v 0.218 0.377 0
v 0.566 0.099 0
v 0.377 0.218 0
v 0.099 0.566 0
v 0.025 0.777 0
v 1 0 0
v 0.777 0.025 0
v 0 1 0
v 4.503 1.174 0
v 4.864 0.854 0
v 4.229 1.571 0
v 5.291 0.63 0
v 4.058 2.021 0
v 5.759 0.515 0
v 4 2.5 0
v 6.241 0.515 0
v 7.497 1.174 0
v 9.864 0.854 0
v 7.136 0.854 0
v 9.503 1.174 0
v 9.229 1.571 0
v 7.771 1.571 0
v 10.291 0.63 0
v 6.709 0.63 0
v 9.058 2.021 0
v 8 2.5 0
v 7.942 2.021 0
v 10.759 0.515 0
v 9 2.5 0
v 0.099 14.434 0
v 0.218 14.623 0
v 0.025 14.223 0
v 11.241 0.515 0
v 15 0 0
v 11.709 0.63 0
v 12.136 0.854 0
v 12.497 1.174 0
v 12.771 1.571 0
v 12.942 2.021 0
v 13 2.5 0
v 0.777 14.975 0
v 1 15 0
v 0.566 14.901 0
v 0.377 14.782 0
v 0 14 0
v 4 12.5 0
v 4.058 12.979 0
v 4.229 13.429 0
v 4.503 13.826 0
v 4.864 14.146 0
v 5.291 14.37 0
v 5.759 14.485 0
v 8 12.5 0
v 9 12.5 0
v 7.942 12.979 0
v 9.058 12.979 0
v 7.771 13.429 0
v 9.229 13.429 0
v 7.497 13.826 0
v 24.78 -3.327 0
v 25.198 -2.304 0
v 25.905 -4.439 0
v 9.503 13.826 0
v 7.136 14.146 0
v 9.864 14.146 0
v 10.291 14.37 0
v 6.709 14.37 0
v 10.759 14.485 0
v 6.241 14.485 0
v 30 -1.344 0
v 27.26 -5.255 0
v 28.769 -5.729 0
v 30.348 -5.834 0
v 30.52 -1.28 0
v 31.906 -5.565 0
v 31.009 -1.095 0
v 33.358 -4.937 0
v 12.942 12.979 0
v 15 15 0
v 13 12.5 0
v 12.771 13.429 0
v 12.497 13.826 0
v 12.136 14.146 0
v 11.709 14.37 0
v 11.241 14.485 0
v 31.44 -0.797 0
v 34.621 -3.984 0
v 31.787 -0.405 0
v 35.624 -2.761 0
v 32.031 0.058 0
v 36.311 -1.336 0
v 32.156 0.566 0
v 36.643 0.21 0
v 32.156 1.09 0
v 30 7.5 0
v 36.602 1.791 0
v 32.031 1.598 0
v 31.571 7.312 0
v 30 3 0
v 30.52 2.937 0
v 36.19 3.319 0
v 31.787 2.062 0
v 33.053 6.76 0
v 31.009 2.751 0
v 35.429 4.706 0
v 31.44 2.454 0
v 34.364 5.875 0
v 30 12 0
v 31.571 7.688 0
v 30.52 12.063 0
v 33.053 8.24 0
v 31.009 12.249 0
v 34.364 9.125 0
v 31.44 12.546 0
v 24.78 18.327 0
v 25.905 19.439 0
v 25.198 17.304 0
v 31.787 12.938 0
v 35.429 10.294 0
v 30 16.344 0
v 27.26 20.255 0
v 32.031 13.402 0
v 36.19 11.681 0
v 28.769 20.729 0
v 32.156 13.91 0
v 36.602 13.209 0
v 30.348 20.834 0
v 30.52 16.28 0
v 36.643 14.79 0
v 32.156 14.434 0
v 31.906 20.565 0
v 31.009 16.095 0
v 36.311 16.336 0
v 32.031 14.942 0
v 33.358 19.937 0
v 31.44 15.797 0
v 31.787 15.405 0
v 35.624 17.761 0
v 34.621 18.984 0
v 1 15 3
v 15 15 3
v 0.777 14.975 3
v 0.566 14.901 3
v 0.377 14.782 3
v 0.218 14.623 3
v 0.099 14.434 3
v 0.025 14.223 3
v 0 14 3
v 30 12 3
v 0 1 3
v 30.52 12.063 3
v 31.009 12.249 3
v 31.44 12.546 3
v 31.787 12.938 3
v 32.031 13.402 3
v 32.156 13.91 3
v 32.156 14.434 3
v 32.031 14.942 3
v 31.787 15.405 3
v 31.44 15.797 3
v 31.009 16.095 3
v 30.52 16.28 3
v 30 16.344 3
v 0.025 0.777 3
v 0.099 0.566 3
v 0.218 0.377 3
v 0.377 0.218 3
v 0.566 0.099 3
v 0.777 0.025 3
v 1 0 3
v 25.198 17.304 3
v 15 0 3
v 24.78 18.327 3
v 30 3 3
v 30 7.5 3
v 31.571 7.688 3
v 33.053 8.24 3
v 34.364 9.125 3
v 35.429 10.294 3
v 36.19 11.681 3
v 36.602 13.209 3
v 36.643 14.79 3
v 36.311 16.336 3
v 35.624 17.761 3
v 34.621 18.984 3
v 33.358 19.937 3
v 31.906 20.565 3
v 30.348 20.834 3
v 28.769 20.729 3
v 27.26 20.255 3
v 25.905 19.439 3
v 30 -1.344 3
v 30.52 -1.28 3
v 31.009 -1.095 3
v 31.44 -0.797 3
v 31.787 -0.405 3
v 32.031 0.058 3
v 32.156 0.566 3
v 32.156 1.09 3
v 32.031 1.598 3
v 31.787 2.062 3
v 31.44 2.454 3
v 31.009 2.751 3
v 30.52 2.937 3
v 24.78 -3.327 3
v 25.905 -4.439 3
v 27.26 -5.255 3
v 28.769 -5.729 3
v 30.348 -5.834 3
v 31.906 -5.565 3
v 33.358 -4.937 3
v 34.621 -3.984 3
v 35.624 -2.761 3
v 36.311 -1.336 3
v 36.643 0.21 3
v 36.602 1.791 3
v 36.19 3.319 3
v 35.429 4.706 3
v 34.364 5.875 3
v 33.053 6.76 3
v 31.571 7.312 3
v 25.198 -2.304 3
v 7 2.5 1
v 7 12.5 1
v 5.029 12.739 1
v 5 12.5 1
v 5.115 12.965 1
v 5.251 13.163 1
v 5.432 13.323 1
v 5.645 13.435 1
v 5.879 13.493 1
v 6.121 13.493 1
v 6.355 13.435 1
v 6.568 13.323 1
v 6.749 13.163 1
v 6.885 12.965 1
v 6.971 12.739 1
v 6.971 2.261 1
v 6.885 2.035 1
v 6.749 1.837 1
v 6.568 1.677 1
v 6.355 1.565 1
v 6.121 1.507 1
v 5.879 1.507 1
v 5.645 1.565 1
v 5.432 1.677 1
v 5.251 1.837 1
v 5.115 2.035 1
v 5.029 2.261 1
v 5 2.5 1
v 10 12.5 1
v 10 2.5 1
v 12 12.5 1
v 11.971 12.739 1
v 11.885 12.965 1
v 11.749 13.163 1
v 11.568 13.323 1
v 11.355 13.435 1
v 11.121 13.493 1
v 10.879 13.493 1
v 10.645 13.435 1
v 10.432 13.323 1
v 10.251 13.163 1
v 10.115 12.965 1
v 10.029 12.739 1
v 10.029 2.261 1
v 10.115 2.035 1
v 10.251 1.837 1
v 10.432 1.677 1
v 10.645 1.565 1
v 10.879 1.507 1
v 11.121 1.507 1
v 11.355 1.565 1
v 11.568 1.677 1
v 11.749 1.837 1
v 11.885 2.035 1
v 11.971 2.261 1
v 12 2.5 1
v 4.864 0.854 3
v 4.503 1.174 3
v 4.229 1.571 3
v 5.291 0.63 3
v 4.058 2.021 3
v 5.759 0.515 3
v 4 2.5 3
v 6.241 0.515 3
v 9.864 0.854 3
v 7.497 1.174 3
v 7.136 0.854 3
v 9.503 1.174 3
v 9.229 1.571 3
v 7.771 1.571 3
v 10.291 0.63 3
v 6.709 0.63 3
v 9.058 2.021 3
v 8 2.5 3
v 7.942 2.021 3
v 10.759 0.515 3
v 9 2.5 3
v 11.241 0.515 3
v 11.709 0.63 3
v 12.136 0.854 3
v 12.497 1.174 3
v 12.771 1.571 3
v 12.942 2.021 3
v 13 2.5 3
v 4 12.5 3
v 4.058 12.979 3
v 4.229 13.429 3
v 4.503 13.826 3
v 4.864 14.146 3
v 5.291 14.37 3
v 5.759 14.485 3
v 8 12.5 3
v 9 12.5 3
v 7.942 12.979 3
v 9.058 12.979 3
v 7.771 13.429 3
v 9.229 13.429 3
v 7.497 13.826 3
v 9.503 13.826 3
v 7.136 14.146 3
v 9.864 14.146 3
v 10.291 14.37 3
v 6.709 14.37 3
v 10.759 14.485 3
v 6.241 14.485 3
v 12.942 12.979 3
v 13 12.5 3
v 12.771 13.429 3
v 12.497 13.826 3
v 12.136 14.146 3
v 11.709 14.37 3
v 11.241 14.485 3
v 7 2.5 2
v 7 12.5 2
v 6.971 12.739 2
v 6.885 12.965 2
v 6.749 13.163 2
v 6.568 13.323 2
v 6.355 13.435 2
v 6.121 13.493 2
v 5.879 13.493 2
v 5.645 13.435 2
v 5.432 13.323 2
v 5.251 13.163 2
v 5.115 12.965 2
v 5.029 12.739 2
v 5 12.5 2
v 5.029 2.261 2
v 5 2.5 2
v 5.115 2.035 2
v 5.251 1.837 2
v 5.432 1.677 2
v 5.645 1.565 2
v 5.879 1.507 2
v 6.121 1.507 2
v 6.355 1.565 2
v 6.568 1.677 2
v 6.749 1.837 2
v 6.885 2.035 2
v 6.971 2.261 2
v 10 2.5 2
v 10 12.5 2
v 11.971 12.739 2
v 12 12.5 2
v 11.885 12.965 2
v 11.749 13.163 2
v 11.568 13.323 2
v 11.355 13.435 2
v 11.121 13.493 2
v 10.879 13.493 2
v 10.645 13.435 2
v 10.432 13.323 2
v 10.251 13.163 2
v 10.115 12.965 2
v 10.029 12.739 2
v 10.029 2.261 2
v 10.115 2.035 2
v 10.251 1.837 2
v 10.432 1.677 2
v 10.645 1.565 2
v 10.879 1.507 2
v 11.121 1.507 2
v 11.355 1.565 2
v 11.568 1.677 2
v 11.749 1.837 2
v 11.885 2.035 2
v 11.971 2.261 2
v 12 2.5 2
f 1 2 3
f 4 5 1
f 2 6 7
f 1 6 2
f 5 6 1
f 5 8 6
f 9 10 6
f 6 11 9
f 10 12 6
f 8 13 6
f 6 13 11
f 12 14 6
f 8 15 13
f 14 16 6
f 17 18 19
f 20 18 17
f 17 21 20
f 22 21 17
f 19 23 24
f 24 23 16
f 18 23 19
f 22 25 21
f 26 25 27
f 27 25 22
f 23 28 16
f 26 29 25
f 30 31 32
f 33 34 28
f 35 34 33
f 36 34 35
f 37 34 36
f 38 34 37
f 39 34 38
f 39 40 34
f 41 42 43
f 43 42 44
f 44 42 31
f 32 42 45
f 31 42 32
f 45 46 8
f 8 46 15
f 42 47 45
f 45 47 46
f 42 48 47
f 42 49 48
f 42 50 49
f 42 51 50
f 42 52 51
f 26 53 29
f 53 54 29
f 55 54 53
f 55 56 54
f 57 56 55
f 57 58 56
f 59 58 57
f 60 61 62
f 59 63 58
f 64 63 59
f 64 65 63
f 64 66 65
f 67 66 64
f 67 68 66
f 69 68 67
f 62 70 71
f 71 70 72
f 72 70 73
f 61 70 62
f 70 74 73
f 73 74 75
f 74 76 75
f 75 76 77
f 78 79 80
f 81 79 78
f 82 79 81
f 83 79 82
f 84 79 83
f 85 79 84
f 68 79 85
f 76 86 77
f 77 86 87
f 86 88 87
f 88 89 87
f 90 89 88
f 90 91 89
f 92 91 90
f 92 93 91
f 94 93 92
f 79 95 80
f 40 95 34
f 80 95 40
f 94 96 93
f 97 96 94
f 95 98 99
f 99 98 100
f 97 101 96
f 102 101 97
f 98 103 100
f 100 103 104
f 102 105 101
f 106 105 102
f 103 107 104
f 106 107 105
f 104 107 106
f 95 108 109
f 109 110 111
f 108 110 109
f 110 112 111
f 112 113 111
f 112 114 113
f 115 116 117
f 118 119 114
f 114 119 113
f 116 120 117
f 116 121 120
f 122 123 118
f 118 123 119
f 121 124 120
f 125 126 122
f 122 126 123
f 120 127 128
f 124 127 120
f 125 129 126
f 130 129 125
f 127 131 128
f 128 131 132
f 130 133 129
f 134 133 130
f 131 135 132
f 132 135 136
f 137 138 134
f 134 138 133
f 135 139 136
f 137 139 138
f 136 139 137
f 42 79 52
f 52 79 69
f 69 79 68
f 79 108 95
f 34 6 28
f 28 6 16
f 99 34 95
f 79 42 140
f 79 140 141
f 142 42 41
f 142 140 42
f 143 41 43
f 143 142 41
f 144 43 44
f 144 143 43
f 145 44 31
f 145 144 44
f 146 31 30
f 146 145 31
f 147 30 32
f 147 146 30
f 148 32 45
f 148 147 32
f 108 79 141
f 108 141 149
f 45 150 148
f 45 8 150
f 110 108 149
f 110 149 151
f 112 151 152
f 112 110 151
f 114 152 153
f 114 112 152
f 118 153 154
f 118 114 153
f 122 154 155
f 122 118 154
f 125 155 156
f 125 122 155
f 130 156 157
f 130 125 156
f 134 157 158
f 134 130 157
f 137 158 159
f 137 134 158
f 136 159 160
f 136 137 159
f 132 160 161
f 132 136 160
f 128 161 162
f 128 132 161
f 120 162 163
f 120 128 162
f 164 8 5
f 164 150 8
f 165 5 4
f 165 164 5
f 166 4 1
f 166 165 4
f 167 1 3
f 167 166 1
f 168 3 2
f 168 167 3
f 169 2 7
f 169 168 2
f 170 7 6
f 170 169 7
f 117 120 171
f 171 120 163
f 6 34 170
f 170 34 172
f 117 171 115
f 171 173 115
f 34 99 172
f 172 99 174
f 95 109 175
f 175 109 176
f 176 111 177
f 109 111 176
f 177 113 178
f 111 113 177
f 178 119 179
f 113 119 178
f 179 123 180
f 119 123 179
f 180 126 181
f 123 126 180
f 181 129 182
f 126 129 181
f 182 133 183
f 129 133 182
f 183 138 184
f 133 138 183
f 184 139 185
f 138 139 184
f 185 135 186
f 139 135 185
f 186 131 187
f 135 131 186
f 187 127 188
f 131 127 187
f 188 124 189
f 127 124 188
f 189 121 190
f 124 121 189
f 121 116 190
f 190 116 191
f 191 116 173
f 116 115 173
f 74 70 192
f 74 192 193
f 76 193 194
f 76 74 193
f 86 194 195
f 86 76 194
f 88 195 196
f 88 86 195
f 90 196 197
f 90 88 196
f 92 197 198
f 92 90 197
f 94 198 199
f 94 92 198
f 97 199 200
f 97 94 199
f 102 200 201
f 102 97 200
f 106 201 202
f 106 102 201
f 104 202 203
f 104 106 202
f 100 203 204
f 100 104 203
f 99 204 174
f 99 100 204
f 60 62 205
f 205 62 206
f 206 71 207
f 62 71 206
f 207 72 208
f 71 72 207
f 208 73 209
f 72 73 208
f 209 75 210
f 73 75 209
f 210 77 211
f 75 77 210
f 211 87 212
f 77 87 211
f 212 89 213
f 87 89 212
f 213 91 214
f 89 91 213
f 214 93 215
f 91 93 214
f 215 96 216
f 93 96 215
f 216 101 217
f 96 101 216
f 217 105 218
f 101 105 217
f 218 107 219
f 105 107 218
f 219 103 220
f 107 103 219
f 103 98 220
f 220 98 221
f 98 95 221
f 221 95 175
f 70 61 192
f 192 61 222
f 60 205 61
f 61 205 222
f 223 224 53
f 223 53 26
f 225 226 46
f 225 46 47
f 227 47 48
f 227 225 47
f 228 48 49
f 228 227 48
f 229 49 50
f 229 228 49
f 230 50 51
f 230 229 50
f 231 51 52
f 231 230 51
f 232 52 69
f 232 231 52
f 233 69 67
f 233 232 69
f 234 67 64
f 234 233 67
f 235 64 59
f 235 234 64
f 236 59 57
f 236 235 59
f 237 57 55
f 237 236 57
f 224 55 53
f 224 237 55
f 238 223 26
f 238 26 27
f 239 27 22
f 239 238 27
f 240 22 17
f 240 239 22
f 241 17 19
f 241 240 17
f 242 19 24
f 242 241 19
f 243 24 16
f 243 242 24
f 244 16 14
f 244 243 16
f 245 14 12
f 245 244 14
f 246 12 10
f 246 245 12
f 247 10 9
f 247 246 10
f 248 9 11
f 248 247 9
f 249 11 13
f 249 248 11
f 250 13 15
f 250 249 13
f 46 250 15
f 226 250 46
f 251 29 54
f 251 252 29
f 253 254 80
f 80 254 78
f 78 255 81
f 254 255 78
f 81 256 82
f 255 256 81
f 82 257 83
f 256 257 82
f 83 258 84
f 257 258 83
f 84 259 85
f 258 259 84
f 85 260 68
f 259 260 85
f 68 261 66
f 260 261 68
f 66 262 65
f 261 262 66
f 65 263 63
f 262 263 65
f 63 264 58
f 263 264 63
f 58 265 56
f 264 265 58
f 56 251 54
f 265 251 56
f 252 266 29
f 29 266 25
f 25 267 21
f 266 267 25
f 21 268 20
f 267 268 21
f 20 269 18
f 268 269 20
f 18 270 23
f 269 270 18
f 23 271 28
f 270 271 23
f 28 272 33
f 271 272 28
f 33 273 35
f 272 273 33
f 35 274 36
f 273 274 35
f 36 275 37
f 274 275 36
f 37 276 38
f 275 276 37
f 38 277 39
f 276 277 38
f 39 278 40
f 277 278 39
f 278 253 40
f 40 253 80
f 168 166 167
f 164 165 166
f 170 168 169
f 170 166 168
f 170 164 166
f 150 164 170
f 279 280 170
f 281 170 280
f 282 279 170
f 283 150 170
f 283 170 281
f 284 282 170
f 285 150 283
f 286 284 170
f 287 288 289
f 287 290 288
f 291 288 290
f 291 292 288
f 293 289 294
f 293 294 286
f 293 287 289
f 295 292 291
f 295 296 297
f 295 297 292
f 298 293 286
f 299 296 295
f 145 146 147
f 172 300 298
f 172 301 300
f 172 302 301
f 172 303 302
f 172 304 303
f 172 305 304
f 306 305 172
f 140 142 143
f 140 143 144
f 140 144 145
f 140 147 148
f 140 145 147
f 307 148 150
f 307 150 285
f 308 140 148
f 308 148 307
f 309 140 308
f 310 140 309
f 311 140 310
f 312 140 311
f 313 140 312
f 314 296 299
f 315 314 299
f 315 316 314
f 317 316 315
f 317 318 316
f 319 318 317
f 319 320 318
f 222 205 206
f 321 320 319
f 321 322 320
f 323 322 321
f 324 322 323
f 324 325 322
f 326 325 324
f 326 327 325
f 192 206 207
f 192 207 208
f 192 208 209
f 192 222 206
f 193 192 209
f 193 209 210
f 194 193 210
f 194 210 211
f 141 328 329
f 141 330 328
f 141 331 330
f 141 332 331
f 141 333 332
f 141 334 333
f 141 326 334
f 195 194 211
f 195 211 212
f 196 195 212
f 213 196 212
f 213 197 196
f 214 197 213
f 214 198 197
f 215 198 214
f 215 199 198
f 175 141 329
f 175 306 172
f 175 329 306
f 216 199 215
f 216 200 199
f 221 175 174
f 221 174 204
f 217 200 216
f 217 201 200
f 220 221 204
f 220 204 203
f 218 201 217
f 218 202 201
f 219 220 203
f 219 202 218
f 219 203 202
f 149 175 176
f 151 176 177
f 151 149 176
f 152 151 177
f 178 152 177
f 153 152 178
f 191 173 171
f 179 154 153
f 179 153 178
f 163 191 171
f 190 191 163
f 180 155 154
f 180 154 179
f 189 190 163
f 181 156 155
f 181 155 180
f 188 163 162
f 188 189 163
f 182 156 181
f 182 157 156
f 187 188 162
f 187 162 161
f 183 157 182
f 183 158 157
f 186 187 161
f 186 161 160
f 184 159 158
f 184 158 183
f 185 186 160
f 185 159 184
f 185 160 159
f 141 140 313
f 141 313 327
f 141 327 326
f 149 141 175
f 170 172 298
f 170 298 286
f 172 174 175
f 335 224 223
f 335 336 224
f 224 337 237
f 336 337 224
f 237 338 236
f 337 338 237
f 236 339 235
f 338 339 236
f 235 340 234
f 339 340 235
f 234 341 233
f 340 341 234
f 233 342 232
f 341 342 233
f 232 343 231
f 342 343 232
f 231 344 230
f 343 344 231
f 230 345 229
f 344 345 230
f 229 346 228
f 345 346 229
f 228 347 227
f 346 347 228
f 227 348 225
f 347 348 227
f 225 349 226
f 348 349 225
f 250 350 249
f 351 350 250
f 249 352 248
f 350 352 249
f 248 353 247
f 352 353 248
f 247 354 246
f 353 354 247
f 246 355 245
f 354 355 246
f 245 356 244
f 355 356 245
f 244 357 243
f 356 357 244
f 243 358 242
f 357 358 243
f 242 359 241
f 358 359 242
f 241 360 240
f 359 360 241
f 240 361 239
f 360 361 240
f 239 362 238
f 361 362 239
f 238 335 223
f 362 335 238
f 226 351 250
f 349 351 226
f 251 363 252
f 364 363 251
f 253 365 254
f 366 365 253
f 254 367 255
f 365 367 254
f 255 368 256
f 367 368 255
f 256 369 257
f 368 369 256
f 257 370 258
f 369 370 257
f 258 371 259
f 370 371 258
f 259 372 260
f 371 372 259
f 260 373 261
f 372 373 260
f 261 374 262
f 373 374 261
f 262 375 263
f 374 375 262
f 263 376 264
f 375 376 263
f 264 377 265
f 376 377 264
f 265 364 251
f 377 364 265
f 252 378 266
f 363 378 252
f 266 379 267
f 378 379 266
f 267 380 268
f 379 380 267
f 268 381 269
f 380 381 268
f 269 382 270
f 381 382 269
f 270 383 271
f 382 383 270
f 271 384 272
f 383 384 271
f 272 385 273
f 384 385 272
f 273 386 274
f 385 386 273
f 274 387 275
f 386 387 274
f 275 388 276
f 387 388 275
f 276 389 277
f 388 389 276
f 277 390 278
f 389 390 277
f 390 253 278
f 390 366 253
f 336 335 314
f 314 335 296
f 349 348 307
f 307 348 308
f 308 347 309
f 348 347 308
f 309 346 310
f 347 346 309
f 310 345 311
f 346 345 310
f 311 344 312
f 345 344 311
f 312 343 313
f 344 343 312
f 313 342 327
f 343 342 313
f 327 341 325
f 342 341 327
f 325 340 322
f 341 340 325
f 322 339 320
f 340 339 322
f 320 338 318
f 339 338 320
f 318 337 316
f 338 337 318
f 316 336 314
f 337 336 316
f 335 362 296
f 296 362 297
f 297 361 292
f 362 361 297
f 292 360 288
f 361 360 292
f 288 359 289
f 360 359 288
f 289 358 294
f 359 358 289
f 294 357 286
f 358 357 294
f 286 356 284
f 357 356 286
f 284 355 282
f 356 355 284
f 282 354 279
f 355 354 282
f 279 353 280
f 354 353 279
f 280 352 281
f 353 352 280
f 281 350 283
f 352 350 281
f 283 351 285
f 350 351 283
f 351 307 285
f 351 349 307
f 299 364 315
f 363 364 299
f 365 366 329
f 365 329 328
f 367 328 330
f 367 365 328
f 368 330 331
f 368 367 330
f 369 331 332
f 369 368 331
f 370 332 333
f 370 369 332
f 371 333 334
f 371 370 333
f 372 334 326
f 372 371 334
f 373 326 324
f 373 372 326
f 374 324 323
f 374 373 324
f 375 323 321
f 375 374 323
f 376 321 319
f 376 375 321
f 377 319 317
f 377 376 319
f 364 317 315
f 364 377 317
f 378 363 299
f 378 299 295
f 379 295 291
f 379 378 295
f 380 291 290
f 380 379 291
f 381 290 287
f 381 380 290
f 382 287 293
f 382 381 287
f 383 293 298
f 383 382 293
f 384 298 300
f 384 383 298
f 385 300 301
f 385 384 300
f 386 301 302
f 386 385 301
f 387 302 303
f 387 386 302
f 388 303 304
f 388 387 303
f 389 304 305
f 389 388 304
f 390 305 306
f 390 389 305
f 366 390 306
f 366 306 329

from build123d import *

# Parameters (mm, degrees)
PAD_DEPTH    = 3
POCKET_DEPTH = 5
CHAMFER_SIZE = 1
FILLET_R     = 1


with BuildPart() as part:
    # Sketch → Pad (new body)
    with BuildSketch(Plane.XY):
        with BuildLine():
            Line((0, 15), (0, 0))
            Line((0, 0), (15, 0))
            Line((15, 0), (30, 3))
            ThreePointArc((30, -1.343534), (32.171767, 0.828233), (30, 3))
            Line((30, -1.343534), (24.21767, -2.5))
            ThreePointArc((24.21767, -2.5), (35.775711, -2.511474), (30, 7.5))
            ThreePointArc((30, 7.5), (35.775711, 17.511474), (24.21767, 17.5))
            Line((24.21767, 17.5), (30, 16.343534))
            ThreePointArc((30, 12), (32.171767, 14.171767), (30, 16.343534))
            Line((15, 15), (30, 12))
            Line((0, 15), (15, 15))
        make_face()
    extrude(amount=PAD_DEPTH)

    # Sketch001 (on Face13 of Pad) → Pocket (cut)
    with BuildSketch(Plane.XY.offset(3)):
        with BuildLine():
            ThreePointArc((7, 12.5), (6, 13.5), (5, 12.5))
            Line((5, 12.5), (5, 2.5))
            ThreePointArc((5, 2.5), (6, 1.5), (7, 2.5))
            Line((7, 12.5), (7, 2.5))
        make_face()
        with BuildLine():
            ThreePointArc((12, 12.5), (11, 13.5), (10, 12.5))
            Line((10, 12.5), (10, 2.5))
            ThreePointArc((10, 2.5), (11, 1.5), (12, 2.5))
            Line((12, 12.5), (12, 2.5))
        make_face()
    extrude(amount=-POCKET_DEPTH, mode=Mode.SUBTRACT)

    # Chamfer
    chamfer_edges = [part.edges().sort_by_distance(p)[0] for p in [
        (7, 7.5, 3),
        (10, 7.5, 3),
        (7, 7.5, 0),
        (10, 7.5, 0),
        (24.21767, 17.5, 1.5),
        (24.21767, -2.5, 1.5),
    ]]
    chamfer(chamfer_edges, length=CHAMFER_SIZE)

    # Fillet
    fillet_edges = [part.edges().sort_by_distance(p)[0] for p in [
        (0, 15, 1.5),
        (0, 0, 1.5),
    ]]
    fillet(fillet_edges, radius=FILLET_R)


solid = part.part
